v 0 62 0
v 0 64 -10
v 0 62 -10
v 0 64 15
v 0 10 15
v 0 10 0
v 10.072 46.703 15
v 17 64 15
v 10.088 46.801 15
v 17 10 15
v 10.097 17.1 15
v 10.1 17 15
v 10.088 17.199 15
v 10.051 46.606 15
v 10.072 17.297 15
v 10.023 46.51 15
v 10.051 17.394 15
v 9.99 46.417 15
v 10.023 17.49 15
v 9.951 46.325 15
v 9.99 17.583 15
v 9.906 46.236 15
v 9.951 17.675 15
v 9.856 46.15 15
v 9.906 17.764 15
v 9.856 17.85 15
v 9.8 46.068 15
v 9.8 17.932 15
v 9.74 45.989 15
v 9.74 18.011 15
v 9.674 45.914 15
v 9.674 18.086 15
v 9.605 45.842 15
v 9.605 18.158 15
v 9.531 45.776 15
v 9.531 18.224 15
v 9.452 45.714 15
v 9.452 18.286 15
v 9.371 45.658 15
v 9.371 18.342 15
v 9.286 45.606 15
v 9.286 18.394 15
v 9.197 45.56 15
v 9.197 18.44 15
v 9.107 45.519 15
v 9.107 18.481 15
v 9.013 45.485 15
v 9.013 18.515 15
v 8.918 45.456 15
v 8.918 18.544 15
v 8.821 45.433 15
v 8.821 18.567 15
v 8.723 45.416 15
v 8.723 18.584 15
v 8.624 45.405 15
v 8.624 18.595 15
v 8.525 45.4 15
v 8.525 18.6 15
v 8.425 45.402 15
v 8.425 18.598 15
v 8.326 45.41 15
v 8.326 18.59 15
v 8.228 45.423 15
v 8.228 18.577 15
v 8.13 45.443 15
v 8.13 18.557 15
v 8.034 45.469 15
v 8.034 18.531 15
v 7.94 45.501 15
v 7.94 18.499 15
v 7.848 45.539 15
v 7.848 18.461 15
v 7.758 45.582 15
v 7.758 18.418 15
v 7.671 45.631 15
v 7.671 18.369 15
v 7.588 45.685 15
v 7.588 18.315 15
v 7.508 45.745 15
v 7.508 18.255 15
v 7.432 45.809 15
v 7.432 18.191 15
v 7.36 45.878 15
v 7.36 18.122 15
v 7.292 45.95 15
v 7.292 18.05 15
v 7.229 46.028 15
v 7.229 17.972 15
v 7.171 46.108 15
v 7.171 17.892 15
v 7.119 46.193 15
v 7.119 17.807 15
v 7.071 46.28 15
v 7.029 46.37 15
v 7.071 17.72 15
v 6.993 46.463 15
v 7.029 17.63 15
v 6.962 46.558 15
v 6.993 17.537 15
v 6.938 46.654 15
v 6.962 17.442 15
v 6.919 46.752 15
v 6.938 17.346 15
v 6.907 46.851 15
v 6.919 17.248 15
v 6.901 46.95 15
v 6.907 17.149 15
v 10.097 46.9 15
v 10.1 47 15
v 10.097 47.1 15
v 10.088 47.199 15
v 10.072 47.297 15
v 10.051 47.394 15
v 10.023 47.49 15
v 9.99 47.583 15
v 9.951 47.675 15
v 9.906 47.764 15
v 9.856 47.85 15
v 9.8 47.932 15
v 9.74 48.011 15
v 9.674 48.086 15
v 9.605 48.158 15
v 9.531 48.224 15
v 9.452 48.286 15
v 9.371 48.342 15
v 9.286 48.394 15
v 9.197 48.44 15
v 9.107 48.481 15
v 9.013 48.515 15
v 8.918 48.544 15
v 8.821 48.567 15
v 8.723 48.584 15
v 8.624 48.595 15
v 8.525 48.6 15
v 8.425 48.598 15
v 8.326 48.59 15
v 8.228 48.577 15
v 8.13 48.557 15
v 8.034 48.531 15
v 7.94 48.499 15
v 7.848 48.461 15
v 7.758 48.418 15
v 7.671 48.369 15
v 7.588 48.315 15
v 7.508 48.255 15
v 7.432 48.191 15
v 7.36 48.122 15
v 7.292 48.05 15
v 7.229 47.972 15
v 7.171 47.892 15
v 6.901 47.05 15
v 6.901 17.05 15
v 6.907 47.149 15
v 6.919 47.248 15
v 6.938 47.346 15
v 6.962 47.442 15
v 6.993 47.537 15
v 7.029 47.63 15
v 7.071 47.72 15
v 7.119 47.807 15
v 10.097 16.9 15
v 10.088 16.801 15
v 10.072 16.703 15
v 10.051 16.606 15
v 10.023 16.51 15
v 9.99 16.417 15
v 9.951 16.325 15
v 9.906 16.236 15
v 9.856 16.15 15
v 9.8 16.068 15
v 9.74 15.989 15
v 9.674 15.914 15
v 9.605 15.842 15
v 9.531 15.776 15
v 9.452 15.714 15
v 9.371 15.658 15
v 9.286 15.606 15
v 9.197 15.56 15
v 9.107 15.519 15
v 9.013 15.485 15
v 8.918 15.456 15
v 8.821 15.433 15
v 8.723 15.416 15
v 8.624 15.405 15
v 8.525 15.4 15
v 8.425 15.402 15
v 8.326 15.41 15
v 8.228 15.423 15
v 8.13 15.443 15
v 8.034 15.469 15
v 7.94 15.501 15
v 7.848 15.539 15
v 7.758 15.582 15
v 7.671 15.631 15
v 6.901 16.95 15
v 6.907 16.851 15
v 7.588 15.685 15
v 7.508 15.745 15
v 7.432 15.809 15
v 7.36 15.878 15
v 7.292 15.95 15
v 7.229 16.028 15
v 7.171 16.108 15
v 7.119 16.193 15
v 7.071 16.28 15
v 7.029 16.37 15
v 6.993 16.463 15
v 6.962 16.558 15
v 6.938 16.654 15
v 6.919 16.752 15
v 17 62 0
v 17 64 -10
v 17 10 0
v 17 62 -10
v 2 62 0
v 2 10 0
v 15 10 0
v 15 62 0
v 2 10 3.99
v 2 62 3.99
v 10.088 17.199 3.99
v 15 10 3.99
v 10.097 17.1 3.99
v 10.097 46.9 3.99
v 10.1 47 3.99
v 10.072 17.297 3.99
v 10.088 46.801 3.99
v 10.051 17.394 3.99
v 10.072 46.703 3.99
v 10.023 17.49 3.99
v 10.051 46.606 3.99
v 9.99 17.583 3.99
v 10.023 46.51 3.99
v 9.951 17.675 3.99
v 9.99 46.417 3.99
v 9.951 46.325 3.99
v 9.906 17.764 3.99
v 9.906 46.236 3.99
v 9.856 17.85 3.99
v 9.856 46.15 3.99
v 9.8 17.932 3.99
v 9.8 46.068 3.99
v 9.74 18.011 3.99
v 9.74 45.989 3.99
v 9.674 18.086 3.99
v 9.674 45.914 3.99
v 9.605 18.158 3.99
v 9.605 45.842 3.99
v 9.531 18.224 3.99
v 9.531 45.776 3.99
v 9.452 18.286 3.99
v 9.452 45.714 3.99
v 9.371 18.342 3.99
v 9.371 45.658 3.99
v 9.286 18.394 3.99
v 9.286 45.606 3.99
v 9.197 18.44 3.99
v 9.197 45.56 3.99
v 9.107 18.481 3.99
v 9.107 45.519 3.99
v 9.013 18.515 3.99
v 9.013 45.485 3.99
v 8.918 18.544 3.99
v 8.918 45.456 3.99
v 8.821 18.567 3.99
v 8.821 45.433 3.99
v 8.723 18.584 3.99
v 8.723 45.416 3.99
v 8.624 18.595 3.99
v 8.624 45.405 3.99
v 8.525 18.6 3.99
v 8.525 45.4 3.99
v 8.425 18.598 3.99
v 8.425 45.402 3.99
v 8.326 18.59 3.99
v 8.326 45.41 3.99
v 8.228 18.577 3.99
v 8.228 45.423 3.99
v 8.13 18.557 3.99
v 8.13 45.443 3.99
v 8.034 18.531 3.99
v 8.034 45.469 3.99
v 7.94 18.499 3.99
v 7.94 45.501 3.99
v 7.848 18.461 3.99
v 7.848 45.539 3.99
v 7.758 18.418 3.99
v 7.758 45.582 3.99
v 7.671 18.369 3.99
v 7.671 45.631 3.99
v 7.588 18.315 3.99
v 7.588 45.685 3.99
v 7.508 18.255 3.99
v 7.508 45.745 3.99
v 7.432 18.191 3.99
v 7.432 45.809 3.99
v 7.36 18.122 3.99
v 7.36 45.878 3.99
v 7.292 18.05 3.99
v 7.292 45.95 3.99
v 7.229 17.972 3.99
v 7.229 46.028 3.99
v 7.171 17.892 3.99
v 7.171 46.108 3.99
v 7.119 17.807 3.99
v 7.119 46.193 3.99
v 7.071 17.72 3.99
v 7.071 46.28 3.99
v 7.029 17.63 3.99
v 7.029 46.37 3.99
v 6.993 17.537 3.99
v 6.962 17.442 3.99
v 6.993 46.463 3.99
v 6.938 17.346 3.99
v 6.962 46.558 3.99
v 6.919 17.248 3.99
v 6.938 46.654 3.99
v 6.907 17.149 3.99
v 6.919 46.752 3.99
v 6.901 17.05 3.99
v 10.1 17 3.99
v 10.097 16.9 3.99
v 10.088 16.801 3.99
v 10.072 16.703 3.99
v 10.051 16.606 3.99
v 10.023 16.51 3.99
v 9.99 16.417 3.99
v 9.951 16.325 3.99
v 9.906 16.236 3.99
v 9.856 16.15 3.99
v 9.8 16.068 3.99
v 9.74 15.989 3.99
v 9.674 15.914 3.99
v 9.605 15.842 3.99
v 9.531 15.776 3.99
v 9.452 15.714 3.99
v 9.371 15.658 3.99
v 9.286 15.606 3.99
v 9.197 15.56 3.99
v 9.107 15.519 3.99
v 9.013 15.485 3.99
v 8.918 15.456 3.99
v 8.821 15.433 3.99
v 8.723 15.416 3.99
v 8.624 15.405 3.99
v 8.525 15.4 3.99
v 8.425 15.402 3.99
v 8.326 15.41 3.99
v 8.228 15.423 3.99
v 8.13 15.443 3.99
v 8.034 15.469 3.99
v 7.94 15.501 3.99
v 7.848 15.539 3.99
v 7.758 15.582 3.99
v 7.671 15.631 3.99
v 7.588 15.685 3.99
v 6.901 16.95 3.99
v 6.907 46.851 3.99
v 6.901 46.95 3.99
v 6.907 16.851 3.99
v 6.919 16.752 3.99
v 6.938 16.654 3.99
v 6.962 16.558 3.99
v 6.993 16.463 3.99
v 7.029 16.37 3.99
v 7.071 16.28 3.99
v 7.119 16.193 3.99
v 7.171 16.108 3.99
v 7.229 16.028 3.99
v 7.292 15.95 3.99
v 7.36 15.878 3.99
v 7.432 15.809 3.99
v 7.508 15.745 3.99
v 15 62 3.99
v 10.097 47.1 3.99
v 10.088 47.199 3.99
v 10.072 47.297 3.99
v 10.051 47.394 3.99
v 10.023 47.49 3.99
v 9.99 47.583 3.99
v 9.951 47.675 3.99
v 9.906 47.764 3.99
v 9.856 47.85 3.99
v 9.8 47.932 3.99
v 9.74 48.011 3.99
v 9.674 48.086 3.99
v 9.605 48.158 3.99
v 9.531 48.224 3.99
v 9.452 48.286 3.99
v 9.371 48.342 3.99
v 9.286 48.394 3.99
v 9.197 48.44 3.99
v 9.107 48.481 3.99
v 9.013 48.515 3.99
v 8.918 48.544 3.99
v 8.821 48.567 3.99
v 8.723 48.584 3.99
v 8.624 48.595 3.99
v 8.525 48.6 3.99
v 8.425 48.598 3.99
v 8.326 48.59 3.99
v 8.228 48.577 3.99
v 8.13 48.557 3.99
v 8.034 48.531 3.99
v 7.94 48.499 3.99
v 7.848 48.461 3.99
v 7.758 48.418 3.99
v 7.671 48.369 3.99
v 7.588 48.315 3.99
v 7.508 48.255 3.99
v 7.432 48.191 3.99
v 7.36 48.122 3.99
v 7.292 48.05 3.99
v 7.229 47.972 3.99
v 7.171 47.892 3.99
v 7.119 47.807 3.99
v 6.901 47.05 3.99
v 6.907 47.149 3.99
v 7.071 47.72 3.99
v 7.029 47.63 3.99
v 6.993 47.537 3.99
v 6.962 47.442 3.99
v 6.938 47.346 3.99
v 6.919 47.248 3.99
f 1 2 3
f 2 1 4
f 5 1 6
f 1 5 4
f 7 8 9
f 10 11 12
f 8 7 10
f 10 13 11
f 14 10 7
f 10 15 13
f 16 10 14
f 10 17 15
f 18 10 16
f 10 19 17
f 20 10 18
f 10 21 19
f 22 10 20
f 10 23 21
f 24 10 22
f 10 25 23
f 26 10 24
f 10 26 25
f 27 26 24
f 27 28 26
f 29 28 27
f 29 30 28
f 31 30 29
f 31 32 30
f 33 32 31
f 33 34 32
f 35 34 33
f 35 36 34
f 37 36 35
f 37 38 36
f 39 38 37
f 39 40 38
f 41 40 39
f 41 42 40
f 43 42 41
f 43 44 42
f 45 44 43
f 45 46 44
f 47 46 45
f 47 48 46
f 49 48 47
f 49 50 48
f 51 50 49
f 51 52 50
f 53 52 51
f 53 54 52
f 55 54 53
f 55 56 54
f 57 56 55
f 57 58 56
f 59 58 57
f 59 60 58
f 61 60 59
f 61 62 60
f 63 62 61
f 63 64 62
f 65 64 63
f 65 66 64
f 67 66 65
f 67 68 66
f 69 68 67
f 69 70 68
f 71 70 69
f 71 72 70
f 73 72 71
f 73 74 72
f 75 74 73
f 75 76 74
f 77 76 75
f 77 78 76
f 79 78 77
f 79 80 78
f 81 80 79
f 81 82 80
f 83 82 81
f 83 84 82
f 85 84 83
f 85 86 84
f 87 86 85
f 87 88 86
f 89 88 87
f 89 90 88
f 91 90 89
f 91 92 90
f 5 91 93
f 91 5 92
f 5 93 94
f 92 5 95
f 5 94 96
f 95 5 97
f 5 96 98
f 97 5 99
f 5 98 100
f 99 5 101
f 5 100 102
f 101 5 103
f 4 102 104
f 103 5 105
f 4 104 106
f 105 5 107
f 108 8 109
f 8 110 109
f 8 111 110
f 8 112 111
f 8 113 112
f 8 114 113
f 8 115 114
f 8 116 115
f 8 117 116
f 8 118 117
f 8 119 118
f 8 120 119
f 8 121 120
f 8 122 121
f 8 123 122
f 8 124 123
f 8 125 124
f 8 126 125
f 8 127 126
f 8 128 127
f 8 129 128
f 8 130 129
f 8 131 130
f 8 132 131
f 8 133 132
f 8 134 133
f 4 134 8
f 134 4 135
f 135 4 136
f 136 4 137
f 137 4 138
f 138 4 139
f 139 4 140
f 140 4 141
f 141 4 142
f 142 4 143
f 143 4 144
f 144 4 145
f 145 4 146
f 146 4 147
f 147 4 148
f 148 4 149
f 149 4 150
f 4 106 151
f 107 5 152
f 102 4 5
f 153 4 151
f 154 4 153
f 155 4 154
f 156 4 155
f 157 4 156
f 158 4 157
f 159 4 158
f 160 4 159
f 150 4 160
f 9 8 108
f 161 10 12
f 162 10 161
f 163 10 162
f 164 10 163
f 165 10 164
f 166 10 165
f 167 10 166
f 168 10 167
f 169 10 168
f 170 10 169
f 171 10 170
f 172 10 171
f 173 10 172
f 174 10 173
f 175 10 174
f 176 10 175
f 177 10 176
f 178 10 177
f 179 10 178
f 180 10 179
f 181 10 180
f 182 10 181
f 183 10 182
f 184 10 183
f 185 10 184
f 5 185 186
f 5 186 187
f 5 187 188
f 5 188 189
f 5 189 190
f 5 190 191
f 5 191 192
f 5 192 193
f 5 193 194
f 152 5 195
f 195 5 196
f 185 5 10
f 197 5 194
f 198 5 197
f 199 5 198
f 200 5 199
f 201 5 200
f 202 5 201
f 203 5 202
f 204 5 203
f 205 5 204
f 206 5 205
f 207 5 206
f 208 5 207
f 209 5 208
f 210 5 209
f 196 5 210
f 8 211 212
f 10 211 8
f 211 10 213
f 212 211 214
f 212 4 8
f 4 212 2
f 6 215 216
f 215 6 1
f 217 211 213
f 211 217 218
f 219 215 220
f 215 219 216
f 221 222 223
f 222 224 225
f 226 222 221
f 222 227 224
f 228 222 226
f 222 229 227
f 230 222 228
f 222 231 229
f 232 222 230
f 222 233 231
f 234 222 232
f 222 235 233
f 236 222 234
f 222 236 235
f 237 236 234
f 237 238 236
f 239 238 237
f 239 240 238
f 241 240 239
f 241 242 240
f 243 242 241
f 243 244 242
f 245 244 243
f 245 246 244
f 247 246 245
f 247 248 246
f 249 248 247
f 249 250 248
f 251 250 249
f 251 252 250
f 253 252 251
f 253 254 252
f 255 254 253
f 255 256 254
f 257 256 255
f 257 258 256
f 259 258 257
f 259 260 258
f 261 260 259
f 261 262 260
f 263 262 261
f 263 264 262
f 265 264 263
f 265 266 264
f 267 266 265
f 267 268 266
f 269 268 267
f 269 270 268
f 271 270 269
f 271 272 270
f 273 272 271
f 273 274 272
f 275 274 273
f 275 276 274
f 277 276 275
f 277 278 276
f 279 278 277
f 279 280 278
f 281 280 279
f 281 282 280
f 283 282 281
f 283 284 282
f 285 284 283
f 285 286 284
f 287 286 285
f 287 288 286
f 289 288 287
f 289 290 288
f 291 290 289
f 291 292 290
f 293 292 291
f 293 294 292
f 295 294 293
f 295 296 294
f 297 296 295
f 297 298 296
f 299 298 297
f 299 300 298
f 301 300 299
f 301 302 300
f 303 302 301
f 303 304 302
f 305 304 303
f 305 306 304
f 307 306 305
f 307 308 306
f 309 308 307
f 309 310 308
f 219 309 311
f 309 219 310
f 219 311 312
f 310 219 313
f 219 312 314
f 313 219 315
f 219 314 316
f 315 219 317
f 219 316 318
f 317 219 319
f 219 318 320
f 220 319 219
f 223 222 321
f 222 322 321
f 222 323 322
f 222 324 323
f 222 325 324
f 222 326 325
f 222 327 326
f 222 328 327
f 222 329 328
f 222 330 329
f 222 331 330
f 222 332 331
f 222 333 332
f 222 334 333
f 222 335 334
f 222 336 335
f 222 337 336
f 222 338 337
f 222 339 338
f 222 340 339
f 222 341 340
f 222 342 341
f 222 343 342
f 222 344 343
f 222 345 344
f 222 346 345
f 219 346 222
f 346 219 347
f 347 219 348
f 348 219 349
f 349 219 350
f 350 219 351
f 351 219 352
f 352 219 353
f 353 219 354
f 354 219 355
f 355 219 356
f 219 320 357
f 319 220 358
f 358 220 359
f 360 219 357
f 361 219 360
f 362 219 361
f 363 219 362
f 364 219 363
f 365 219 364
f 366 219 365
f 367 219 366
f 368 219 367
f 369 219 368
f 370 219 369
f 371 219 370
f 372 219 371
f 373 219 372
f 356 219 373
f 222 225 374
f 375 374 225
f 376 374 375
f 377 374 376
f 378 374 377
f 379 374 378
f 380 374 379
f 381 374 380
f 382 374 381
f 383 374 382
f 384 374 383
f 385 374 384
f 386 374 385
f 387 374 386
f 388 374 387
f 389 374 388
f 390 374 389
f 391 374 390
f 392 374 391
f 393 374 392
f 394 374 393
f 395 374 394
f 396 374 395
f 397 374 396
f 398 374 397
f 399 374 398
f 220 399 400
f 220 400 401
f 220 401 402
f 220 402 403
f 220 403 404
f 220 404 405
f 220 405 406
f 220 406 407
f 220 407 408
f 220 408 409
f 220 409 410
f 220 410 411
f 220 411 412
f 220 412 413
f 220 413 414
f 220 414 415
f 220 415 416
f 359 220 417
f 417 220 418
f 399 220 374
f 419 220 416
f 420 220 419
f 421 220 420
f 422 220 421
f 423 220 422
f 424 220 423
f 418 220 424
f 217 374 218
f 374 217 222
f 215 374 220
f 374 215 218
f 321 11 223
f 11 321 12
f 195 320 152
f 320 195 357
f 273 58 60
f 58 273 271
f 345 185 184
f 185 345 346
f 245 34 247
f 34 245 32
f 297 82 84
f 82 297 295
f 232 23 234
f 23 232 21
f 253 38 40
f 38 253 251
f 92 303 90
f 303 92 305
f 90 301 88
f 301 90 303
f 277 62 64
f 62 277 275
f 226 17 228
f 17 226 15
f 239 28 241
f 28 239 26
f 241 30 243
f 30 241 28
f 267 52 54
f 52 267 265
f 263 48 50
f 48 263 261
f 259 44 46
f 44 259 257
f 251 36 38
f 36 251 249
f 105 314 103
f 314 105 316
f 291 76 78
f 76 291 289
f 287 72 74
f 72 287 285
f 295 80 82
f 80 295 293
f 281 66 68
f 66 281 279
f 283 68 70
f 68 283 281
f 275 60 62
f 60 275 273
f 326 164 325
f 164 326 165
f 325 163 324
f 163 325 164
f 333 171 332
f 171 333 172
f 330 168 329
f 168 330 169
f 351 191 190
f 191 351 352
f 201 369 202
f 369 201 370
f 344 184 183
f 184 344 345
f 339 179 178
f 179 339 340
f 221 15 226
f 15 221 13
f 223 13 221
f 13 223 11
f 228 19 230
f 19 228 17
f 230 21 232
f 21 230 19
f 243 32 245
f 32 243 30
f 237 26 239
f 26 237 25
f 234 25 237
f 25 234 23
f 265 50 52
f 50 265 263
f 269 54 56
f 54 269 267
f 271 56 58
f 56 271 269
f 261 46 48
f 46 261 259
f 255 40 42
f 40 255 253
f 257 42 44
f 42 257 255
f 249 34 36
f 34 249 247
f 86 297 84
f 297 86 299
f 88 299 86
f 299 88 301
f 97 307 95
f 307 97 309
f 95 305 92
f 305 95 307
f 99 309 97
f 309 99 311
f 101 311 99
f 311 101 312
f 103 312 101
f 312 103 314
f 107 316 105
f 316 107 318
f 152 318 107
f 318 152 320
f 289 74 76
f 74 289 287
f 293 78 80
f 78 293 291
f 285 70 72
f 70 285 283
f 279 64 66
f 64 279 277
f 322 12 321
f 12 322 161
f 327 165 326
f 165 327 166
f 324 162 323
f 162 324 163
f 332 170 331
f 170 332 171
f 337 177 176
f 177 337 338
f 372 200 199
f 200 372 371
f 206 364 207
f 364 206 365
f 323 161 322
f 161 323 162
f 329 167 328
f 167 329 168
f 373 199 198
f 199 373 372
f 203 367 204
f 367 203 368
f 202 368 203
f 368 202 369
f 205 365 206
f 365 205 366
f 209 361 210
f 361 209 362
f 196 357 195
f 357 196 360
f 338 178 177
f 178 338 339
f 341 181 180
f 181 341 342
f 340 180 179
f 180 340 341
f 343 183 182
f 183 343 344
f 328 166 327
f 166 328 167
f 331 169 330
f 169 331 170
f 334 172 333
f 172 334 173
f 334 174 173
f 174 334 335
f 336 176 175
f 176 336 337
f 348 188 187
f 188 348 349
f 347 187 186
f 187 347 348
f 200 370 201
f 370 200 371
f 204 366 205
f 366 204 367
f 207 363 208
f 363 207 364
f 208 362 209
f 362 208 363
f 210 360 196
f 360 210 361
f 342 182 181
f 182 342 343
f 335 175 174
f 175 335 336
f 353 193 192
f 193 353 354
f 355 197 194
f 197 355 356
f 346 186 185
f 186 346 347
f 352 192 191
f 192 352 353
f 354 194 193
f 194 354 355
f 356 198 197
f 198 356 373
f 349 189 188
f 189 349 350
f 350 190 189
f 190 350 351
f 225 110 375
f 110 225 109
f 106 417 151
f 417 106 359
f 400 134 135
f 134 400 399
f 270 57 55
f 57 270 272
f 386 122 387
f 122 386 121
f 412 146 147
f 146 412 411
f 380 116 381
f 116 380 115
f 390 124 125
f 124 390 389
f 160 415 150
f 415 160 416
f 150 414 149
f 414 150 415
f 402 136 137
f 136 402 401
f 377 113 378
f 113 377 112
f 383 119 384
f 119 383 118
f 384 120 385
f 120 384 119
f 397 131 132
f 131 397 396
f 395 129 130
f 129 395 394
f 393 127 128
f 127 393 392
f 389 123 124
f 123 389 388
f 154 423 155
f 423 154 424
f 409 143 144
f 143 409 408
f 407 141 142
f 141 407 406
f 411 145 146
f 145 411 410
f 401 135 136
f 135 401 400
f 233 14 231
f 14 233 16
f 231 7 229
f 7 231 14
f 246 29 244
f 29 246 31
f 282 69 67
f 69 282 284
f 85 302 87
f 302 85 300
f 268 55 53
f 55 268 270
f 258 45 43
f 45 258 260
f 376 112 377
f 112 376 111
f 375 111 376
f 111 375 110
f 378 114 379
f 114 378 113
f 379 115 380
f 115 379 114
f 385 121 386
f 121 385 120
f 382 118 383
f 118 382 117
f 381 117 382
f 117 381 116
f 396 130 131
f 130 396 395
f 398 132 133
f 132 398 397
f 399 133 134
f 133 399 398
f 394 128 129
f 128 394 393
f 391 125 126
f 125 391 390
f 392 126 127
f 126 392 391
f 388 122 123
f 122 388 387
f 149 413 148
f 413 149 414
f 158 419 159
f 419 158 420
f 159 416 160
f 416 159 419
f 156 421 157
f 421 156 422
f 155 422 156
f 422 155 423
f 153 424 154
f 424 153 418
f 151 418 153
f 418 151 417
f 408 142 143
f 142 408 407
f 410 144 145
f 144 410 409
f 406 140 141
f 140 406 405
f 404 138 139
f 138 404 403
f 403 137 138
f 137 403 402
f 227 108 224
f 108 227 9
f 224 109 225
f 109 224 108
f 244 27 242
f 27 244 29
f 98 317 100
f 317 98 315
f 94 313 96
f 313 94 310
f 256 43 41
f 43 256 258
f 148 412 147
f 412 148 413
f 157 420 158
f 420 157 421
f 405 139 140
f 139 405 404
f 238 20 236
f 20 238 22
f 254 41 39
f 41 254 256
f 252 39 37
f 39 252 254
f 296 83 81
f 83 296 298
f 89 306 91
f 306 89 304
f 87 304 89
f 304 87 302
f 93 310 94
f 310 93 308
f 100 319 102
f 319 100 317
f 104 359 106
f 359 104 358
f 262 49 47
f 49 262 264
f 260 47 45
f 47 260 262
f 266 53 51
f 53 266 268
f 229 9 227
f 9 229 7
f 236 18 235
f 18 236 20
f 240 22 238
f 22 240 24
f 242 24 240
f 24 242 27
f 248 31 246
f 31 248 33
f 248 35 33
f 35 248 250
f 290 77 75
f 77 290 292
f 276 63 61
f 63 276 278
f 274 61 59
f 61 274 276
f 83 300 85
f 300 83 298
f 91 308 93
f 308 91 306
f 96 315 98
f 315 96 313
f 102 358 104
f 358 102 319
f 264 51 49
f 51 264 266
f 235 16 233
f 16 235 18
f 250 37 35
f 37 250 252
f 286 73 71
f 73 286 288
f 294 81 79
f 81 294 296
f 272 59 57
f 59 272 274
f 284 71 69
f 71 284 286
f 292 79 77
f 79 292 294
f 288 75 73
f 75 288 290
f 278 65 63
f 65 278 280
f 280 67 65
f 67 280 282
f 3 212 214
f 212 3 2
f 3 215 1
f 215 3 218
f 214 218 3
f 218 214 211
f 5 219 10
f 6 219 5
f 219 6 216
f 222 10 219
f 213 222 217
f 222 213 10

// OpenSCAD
T = 2;
$fs = 0.1;
$fa = 2;

intersection(){
    union(){
        difference(){
            translate([0,00,0])cube([13+2*T, 60+2*T, 15]);
            translate([T,T,-0.01])cube([13,60,4]);
            
            translate([13/2+T,15+T,0])cylinder(r=1.6,h=100,center=true);
            translate([13/2+T,45+T,0])cylinder(r=1.6,h=100,center=true);
        }

        translate([0,0,-10])cube([13+2*T,T,10]);
        translate([0,60+T,-10])cube([13+2*T,T,10]);
    }
    translate([0,10,-10])cube(100);
}
